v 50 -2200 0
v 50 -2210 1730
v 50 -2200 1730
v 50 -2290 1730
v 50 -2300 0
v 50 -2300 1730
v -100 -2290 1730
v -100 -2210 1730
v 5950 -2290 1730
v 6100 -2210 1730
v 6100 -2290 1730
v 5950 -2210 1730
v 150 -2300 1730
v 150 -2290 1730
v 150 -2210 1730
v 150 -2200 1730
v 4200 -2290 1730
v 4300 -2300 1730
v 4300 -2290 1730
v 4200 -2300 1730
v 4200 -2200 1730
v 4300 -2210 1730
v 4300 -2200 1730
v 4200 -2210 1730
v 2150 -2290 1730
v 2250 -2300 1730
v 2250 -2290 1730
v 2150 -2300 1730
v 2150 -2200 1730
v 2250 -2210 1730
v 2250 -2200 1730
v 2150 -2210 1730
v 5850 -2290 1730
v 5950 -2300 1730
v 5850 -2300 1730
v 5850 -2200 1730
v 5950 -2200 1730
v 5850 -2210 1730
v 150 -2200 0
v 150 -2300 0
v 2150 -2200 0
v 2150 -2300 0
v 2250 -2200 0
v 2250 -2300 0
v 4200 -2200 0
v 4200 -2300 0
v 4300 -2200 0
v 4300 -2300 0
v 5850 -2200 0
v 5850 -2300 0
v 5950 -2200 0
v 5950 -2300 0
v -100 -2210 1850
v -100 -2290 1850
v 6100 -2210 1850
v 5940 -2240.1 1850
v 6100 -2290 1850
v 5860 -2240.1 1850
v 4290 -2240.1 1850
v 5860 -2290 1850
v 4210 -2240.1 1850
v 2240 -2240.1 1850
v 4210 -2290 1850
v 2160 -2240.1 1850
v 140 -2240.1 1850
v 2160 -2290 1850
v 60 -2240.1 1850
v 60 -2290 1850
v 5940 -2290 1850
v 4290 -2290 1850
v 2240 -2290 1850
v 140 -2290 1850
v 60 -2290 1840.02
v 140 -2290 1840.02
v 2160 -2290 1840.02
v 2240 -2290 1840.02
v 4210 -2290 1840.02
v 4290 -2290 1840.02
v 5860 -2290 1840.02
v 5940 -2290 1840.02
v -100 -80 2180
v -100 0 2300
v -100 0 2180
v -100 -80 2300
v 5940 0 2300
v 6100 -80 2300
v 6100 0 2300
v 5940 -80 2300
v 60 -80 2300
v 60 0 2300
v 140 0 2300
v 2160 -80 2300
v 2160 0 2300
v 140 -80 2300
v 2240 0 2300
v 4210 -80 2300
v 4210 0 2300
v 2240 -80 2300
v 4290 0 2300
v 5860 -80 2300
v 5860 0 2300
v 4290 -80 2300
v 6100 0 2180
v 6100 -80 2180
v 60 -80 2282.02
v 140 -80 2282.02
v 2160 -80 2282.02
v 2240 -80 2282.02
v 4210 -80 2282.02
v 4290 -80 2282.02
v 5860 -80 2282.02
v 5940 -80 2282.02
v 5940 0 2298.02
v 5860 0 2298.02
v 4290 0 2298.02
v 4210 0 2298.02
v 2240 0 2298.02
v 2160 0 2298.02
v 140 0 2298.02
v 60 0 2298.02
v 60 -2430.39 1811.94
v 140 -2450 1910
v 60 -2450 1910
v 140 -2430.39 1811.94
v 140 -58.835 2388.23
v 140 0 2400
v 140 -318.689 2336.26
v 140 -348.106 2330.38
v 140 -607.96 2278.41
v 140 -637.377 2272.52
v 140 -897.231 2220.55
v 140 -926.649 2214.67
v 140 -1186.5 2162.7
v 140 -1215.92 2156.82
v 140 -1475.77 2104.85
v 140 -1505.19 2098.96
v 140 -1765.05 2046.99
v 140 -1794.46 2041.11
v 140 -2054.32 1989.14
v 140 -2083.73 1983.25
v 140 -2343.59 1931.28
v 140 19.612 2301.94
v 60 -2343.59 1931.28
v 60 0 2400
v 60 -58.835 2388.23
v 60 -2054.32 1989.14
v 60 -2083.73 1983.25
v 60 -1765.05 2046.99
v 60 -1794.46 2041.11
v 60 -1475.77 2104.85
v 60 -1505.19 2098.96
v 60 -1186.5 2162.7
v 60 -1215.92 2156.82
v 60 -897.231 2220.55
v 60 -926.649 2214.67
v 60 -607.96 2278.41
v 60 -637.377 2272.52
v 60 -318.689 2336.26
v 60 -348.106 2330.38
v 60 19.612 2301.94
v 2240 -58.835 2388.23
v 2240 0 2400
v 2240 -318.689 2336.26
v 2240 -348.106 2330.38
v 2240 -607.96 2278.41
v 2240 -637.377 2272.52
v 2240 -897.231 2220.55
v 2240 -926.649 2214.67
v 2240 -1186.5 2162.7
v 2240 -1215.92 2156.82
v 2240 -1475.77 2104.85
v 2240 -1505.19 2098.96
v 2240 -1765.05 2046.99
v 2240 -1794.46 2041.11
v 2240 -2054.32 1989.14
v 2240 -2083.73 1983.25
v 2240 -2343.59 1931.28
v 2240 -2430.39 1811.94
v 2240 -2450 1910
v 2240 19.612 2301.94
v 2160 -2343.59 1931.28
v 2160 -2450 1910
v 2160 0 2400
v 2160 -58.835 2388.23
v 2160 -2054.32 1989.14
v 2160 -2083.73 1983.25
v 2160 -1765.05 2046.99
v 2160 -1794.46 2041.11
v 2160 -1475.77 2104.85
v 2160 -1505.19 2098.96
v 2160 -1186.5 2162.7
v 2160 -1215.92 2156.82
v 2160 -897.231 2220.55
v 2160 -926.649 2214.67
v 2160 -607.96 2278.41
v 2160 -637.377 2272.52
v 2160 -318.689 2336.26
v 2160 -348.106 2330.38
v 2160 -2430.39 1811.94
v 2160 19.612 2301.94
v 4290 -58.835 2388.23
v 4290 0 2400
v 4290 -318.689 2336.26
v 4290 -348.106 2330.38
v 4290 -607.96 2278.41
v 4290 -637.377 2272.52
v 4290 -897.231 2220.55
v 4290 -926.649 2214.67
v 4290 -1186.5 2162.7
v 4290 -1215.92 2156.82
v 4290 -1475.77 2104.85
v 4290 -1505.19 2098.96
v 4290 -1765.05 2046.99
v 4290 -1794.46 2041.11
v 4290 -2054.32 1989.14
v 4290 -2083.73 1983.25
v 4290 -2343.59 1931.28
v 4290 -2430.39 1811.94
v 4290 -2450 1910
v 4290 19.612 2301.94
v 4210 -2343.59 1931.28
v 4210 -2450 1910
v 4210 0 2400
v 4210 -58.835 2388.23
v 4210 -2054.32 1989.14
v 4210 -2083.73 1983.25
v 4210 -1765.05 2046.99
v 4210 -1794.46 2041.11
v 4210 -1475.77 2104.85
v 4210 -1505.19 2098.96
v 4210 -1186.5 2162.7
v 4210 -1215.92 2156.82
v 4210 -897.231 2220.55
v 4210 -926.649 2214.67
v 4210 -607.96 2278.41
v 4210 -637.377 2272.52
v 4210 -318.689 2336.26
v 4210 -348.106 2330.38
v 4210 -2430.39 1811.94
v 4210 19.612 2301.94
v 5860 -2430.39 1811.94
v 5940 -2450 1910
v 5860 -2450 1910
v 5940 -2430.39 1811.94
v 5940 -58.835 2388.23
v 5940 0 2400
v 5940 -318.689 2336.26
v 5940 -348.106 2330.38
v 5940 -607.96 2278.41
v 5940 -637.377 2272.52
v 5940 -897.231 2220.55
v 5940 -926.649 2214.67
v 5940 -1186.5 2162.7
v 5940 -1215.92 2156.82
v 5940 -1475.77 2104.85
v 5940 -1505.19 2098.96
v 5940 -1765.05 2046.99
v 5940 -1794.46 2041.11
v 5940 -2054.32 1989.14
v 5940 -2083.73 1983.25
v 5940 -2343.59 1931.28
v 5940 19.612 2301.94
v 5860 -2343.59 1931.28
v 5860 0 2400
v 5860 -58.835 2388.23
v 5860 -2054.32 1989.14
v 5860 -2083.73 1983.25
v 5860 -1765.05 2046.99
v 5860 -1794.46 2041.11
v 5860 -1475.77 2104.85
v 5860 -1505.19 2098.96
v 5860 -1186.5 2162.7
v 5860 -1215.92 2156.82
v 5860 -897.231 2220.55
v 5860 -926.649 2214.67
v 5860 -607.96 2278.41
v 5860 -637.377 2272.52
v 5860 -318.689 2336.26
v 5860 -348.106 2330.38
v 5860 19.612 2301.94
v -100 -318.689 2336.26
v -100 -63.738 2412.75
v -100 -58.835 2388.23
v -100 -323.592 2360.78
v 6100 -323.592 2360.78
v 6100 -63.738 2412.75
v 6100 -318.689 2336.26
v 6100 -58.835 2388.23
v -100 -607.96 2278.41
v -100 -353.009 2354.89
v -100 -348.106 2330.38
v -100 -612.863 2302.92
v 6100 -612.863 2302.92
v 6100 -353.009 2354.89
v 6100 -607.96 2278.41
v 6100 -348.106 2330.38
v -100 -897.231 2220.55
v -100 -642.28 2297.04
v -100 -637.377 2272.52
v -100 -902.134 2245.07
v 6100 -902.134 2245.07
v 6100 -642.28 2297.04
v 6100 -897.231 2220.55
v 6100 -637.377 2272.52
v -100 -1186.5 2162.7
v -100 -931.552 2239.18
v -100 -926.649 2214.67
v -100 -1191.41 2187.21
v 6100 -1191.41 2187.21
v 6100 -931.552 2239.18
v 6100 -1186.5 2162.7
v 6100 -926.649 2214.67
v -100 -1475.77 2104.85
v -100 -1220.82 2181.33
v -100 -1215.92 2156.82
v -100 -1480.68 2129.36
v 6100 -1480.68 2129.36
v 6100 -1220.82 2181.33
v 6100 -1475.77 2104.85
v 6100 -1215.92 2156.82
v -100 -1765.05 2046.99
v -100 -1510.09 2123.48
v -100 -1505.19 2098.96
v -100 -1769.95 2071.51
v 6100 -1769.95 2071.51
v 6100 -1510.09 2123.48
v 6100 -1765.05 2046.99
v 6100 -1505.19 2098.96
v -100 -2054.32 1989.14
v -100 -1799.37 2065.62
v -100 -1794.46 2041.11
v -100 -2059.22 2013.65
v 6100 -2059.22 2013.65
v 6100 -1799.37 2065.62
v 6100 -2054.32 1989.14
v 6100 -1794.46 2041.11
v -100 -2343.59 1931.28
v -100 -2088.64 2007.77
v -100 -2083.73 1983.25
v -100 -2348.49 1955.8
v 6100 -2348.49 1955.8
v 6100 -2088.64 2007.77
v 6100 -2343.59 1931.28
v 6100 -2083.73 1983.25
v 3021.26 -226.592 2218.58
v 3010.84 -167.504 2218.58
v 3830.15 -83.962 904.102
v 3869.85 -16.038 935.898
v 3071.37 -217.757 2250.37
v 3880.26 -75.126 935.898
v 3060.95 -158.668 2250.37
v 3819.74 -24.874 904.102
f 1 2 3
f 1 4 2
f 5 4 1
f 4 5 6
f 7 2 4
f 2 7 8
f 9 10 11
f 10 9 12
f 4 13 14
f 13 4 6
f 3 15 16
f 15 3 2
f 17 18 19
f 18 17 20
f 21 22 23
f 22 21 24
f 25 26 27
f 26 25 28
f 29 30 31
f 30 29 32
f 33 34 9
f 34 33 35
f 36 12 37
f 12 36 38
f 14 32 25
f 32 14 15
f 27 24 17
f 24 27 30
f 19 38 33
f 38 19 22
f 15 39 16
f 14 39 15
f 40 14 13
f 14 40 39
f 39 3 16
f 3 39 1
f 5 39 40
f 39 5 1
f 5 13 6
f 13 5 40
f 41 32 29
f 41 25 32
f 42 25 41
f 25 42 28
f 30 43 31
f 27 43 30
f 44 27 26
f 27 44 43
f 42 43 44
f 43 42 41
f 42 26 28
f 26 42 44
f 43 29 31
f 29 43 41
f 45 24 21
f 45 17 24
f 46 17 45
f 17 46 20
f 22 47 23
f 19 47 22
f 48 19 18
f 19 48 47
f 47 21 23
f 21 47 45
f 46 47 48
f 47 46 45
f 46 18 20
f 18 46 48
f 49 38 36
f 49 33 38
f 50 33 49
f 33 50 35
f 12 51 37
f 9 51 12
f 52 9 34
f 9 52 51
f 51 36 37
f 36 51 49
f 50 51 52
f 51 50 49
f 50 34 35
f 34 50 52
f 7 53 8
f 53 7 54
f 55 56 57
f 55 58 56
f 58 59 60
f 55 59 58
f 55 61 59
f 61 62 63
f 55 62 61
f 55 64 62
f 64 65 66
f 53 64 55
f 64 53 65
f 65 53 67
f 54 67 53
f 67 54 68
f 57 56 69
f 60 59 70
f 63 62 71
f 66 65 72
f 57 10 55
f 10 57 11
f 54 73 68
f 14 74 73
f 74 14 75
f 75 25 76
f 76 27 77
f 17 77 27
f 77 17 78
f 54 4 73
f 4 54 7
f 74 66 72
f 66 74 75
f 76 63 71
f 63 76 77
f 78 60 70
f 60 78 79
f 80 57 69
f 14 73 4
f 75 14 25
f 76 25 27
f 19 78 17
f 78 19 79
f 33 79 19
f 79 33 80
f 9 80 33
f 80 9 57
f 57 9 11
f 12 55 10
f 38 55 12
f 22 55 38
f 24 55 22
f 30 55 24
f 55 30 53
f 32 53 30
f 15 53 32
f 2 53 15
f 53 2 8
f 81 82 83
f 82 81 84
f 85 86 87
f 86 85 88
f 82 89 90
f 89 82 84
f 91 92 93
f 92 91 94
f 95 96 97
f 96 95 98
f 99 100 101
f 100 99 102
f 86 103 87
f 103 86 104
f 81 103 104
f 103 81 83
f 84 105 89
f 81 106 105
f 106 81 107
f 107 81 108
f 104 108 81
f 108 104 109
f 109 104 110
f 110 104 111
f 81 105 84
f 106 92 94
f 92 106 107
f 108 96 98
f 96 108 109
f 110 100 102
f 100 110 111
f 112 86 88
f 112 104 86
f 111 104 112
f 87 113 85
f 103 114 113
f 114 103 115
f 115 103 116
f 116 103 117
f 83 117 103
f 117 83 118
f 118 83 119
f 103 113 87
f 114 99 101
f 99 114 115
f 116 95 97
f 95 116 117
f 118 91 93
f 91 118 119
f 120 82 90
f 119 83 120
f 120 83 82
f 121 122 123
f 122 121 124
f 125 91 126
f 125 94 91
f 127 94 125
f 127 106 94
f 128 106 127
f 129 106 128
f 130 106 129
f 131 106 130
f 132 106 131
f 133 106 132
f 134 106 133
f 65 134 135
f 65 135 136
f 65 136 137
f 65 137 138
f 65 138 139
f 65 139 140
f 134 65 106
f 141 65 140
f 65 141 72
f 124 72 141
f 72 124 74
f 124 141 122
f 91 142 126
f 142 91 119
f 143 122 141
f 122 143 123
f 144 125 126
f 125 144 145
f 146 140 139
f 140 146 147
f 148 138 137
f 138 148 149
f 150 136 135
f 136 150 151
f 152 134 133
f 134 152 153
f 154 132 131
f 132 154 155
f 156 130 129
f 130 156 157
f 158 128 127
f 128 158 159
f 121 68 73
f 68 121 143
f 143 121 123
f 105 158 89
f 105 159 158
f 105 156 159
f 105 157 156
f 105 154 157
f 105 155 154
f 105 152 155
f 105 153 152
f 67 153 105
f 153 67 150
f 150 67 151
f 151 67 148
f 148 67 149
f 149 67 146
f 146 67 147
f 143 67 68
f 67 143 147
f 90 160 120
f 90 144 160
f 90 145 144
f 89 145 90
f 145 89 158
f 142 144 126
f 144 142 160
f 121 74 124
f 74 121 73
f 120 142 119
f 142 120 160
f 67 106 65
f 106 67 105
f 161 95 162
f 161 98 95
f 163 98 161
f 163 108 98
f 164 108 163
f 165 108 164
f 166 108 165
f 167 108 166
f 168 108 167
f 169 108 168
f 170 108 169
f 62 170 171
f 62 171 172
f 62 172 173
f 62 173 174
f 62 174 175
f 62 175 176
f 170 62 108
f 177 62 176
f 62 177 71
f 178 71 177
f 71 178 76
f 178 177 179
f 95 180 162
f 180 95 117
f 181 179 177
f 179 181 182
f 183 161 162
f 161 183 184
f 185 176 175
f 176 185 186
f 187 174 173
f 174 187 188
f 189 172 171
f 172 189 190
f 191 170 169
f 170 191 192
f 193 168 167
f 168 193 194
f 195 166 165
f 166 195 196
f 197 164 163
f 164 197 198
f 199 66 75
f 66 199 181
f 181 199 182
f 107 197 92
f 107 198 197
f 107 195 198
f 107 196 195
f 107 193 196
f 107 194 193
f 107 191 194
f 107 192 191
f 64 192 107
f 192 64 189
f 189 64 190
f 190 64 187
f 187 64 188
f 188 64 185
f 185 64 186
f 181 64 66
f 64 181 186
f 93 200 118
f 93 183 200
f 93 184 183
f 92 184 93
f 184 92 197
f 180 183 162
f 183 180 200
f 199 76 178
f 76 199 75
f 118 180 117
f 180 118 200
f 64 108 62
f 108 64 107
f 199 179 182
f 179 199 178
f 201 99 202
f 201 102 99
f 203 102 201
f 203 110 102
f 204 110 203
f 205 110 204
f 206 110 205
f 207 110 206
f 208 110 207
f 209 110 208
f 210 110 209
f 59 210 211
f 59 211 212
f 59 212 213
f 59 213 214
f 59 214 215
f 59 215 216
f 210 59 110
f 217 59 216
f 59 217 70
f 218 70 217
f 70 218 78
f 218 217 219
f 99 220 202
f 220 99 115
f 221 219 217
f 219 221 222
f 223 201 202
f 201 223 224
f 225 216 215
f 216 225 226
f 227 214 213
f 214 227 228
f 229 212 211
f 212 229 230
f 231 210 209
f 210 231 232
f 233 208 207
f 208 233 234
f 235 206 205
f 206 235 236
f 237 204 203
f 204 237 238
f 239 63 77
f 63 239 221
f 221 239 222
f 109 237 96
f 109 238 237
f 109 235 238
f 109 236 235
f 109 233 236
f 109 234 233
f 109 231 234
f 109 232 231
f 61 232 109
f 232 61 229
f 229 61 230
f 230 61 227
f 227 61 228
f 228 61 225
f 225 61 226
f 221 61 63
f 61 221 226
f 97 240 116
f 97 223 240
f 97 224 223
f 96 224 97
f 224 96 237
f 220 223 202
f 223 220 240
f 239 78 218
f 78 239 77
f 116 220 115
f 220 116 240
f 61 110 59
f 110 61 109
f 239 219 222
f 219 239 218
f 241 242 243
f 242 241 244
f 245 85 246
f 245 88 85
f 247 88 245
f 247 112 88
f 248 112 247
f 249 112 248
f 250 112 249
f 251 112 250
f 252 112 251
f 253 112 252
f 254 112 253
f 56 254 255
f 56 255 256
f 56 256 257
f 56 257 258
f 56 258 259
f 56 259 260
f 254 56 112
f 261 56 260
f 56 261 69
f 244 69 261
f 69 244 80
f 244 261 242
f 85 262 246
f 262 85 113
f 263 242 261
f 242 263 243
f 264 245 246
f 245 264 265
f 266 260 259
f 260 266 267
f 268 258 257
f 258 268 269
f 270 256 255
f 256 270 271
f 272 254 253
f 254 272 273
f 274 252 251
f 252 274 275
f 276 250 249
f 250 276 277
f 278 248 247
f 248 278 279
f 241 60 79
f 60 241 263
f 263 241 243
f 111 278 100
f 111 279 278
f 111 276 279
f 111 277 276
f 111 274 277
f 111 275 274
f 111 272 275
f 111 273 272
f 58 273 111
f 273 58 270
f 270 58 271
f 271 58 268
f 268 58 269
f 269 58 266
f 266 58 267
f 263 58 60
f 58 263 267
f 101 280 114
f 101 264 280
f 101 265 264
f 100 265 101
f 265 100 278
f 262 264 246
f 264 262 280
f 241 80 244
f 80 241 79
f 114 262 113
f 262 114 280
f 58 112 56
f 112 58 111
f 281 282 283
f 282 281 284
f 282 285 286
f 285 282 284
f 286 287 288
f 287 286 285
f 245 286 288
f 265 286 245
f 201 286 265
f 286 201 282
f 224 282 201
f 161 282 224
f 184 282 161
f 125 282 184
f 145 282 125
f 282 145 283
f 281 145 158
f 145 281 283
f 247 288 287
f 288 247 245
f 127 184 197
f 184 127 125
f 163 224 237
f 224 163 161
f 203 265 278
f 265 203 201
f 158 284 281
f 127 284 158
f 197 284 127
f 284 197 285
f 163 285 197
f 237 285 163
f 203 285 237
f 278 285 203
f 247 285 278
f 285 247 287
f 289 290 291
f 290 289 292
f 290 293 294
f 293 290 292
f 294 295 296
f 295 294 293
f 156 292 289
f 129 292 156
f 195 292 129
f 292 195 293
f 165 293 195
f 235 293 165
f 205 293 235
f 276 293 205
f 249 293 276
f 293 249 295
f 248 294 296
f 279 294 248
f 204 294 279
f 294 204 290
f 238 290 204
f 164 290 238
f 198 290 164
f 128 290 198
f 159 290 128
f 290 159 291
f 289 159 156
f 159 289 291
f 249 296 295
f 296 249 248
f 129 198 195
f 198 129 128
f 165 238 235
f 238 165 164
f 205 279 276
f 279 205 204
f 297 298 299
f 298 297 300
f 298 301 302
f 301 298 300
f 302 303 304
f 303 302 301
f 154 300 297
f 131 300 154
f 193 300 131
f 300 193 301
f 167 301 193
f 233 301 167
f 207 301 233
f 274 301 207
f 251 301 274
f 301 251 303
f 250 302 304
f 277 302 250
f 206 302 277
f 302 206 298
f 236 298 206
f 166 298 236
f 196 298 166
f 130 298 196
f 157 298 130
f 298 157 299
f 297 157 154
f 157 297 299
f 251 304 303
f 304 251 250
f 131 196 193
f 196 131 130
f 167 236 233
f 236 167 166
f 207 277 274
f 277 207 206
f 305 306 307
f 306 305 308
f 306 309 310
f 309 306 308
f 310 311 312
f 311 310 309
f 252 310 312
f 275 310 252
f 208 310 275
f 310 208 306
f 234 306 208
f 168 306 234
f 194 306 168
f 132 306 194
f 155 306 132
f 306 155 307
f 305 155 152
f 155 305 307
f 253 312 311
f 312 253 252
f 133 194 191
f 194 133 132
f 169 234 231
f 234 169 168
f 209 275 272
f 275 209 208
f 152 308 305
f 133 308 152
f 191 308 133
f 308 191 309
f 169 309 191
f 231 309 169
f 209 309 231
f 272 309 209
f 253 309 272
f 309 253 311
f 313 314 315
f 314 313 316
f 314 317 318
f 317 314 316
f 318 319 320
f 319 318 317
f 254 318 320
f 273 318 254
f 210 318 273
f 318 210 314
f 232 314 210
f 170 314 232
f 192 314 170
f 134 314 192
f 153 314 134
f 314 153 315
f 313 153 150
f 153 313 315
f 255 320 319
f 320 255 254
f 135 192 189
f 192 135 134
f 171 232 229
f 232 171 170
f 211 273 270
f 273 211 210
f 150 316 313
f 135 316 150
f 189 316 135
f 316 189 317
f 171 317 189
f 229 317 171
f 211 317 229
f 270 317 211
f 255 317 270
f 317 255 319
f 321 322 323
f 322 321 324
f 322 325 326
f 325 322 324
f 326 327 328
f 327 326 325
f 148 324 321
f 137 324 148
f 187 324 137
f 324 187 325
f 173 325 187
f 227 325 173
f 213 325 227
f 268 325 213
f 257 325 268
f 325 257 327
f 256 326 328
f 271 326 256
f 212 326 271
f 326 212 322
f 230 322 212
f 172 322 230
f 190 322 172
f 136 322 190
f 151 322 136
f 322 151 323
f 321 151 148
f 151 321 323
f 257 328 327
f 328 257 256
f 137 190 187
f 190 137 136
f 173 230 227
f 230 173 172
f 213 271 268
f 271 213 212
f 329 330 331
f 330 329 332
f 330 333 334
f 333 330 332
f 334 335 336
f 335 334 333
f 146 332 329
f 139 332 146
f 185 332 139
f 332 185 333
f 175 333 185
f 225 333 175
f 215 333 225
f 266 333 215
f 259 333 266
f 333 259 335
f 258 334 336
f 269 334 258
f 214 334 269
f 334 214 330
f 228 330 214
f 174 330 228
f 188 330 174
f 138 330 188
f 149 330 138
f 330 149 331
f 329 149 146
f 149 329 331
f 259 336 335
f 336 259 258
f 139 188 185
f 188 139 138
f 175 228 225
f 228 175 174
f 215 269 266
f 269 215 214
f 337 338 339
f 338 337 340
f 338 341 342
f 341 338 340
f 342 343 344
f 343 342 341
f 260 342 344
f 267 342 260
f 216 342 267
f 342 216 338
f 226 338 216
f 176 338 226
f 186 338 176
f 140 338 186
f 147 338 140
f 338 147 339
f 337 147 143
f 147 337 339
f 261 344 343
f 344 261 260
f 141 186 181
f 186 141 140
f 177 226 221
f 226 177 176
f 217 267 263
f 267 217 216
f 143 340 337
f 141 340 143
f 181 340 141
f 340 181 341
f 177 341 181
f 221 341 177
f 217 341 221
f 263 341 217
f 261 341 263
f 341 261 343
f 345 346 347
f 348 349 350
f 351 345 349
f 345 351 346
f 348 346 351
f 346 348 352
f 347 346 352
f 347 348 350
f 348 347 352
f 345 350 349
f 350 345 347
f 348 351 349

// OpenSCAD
// file: tea_shop_pergola_parameters.scad
// =============================================================================
// Tea Shop — GROUP 3: PERGOLA PARAMETERS
// -----------------------------------------------------------------------------
// All units: mm (1000 mm = 1.0 m), real-life scale.
// Shared global coordinate system (identical to Groups 1 & 2):
//   +X -> left -> right  (0 = left outer wall face, BUILD_W = right outer wall)
//   +Y -> front -> back  (0 = front eave wall face, BUILD_D = back wall)
//   +Z -> up             (0 = ground / plinth top datum)
//   Porch canopy extends in negative Y (forward, from Y = 0 to Y ≈ -2450 mm).
// =============================================================================

// --- SHARED GLOBAL VARIABLES (from Groups 1 & 2 — identical values) ----------
WALL_T  = 250;   // wall panel thickness                      (0.25 m)
BUILD_W = 6000;  // building width along X                    (6.00 m)
BUILD_D = 4000;  // building depth along Y                    (4.00 m)
BACK_H  = 3200;  // wall height at BACK (tall lean-to side)   (3.20 m)
FRONT_H = 2400;  // wall height at FRONT eave (short side)    (2.40 m)

// Group 1 alias names
wall_thickness    = WALL_T;
building_width    = BUILD_W;
building_depth    = BUILD_D;
back_height       = BACK_H;
front_eave_height = FRONT_H;

// Group 1 front opening & plinth references:
sill_height       = 900;   // knee-wall sill datum where brace foot rests (0.90 m)
base_front_margin = 3000;  // total front porch slab depth               (3.00 m)

// Group 2 roof slope derivation (pergola slope follows this exact angle):
ROOF_RISE  = BACK_H - FRONT_H;  // 800 mm
ROOF_RUN   = BUILD_D;            // 4000 mm
ROOF_ANGLE = atan(ROOF_RISE / ROOF_RUN); // ~11.3099°


// =============================================================================
// GROUP 3 PARAMETERS — Pergola Structure & Dimensions
// =============================================================================

// --- Post Cross-Section & Layout ---------------------------------------------
// REFERENCE NOTE: Posts are square timber (~100x100 mm), confirmed from
// wireframe (countryside-tea-shop-3d-model-9cc7378ff7.webp).
POST_SIZE = 100;  // square timber post dimension (100 mm × 100 mm) (0.10 m)

// Y coordinate of the front posts line:
// Placed at Y = -2250 mm (~75% forward across the 3.0 m porch slab),
// leaving ~750 mm open patio in front of posts as shown in reference renders.
POST_Y    = -2250;

// Array of 4 post positions [X, Y]:
// Derived from front elevation proportions:
//   - Post 1 (X=100)  : near left edge of pergola / bench area
//   - Post 2 (X=2200) : intermediate post subdividing wide 3.4m service window span
//   - Post 3 (X=4250) : positioned at mid-pier directly supporting signboard
//   - Post 4 (X=5900) : near right corner of pergola
PERGOLA_POST_POSITIONS = [
    [100,  POST_Y],  // Post 1: Front-Left
    [2200, POST_Y],  // Post 2: Front-Mid-Left
    [4250, POST_Y],  // Post 3: Front-Mid-Right (under "TEA SHOP" sign)
    [5900, POST_Y]   // Post 4: Front-Right
];

// --- Beam Dimensions ---------------------------------------------------------
MAIN_BEAM_WIDTH  = 80;   // thickness of header & ledger beams along Y (0.08 m)
MAIN_BEAM_HEIGHT = 120;  // vertical depth of header & ledger beams    (0.12 m)

// --- Cross Beams / Rafters ---------------------------------------------------
CROSS_BEAM_WIDTH  = 80;   // rafter timber thickness along X            (0.08 m)
CROSS_BEAM_HEIGHT = 100;  // rafter timber depth normal to slope        (0.10 m)

// Rafter X positions aligning directly over the 4 posts:
CROSS_BEAM_X_POSITIONS = [100, 2200, 4250, 5900];

// Sloped length of rafter from front wall (Y=0) to 200 mm past the posts:
CROSS_BEAM_SLOPE_LEN = (abs(POST_Y) + 200) / cos(ROOF_ANGLE);

// --- Pergola Slope Datum & Post Height Derivation ----------------------------
// The pergola roof slopes DOWNWARDS from the front wall eave (Y=0, Z=FRONT_H)
// toward the front posts (Y=POST_Y).
// Under the slope, the rafter top is at: FRONT_H - abs(POST_Y) * tan(ROOF_ANGLE).
// Below the rafters is the header beam (MAIN_BEAM_HEIGHT).
// Post tops touch the underside of the header beam:
PERGOLA_EAVE_Z = FRONT_H;
POST_HEIGHT    = PERGOLA_EAVE_Z - abs(POST_Y) * tan(ROOF_ANGLE) - CROSS_BEAM_HEIGHT - MAIN_BEAM_HEIGHT;

// --- Diagonal Prop Brace -----------------------------------------------------
// Single prop strut visible in window wireframe (8ffafd36e4.webp), anchoring
// near the counter sill and rising diagonally to the overhead rafter.
BRACE_WIDTH     = 60;   // diagonal brace width                       (0.06 m)
BRACE_THICKNESS = 60;   // diagonal brace thickness                   (0.06 m)
BRACE_LENGTH    = 1550; // length along diagonal strut axis           (1.55 m)
BRACE_ANGLE     = 32;   // angle of brace from vertical in degrees

// --- Slatted Roof Canopy (Planks) --------------------------------------------
// 8 flat timber planks running along X (spanning full width), arrayed along
// the slope from the front wall eave to cantilever slightly past the front posts.
SLAT_WIDTH        = 265;  // width of each individual wooden plank      (0.265 m)
SLAT_THICKNESS    = 25;   // thickness of timber plank                  (0.025 m)
SLAT_GAP          = 30;   // air gap between consecutive slats          (0.030 m)
SLAT_COUNT        = 8;    // count matching 8 planks visible in wireframe
SLAT_LENGTH       = 6200; // full span along X (covers 6000 mm + 100 mm side margins)
SLAT_START_OFFSET = 60;   // distance along slope from wall face to first slat (mm)
// file: tea_shop_pergola_modules.scad
// =============================================================================
// Tea Shop — GROUP 3: PERGOLA MODULE LIBRARY
// -----------------------------------------------------------------------------
// Defines all pergola part modules. Creates NO geometry on its own when
// included, allowing individual part_*.scad export files and the assembly
// preview file to include it cleanly.
//
// SHARED GLOBAL COORDINATE SYSTEM (identical to Groups 1 & 2):
//   +X -> left -> right  (0 = left outer wall face, BUILD_W = right outer wall)
//   +Y -> front -> back  (0 = front eave wall face, BUILD_D = back wall)
//   +Z -> up             (0 = ground / plinth top datum)
//   Porch canopy extends in negative Y (forward, from Y = 0 to Y ≈ -2450 mm).
//
// SLOPE CORRECTION:
//   Because the porch is in the negative Y direction (-Y), applying a POSITIVE
//   rotation `rotate([ROOF_ANGLE, 0, 0])` causes the coordinate `[0, -y, 0]`
//   to rotate DOWNWARD into negative Z: `Z = -y * sin(ROOF_ANGLE)`.
//   This ensures the pergola rafters and slats slope DOWNWARDS toward the front
//   posts, resting flush and continuous with the building's roof line.
//
// TODO: The hanging "TEA SHOP" sign and its mounting bracket (a later group)
//       will attach to the main header beam / roof slats near Post 3 (X=4250).
// TODO: The customer bench, stools, and water dispenser stand (later groups)
//       sit on the base slab beneath this pergola structure at Z=0.
// =============================================================================

include <tea_shop_pergola_parameters.scad>;


// =============================================================================
// MODULE 1: pergola_post()
// -----------------------------------------------------------------------------
// A single vertical square timber post modeled at the local origin:
//   Centred in X and Y ([-POST_SIZE/2 .. +POST_SIZE/2]), rising from Z=0
//   to Z=POST_HEIGHT (touching the underside of the front header beam).
// Instanced 4 times via translate() in assemble() — single reusable module.
// =============================================================================
module pergola_post() {
    translate([-POST_SIZE/2, -POST_SIZE/2, 0])
        cube([POST_SIZE, POST_SIZE, POST_HEIGHT]);
}


// =============================================================================
// MODULE 2: pergola_main_beam()
// -----------------------------------------------------------------------------
// The horizontal primary beam system:
//   1. Front header beam: spans across all 4 post tops at Y = POST_Y,
//      distributing load and directly supporting the sloped rafters.
//   2. Rear ledger beam: runs along the front wall eave (Y=0), supporting
//      the upper ends of the rafters.
// =============================================================================
module pergola_main_beam() {
    // 1. Front header beam resting directly on top of the front posts
    translate([-100, POST_Y - MAIN_BEAM_WIDTH/2, POST_HEIGHT])
        cube([BUILD_W + 200, MAIN_BEAM_WIDTH, MAIN_BEAM_HEIGHT]);

    // 2. Rear wall ledger beam anchored to the front wall below the eave
    translate([-100, -MAIN_BEAM_WIDTH, PERGOLA_EAVE_Z - MAIN_BEAM_HEIGHT - CROSS_BEAM_HEIGHT])
        cube([BUILD_W + 200, MAIN_BEAM_WIDTH, MAIN_BEAM_HEIGHT]);
}


// =============================================================================
// MODULE 3: pergola_diagonal_brace()
// -----------------------------------------------------------------------------
// A single diagonal timber brace modeled at local origin. Oriented at BRACE_ANGLE
// from vertical. Instanced at the service counter sill to support the overhead
// rafter beam, exactly as shown in the reference wireframe pass.
// =============================================================================
module pergola_diagonal_brace() {
    rotate([0, -BRACE_ANGLE, 10])
        translate([-BRACE_WIDTH/2, -BRACE_THICKNESS/2, 0])
            cube([BRACE_WIDTH, BRACE_THICKNESS, BRACE_LENGTH]);
}


// =============================================================================
// MODULE 4: pergola_cross_beam()
// -----------------------------------------------------------------------------
// A single sloped rafter running perpendicular to the building (in Y direction).
// Modeled at local origin (X=0) and sloped DOWNWARD at ROOF_ANGLE:
//   - Starts at the front wall ledger beam (Y=0)
//   - Slopes down to bear across the front header beam at POST_Y
//   - Projects 200 mm past the posts as an exposed rafter tail
// =============================================================================
module pergola_cross_beam() {
    translate([0, 0, PERGOLA_EAVE_Z])
        rotate([ROOF_ANGLE, 0, 0])
            translate([-CROSS_BEAM_WIDTH/2, -CROSS_BEAM_SLOPE_LEN, -CROSS_BEAM_HEIGHT])
                cube([CROSS_BEAM_WIDTH, CROSS_BEAM_SLOPE_LEN, CROSS_BEAM_HEIGHT]);
}


// =============================================================================
// MODULE 5: pergola_slat()
// -----------------------------------------------------------------------------
// A single flat timber canopy plank running along X (spanning the full width).
// Instanced and arrayed in assemble() via a for loop down the sloped plane,
// resting directly on top of the rafters.
// =============================================================================
module pergola_slat() {
    translate([-100, -SLAT_WIDTH, 0])
        cube([SLAT_LENGTH, SLAT_WIDTH, SLAT_THICKNESS]);
}


// =============================================================================
// ASSEMBLE MODULE — Visual verification preview (not for export)
// -----------------------------------------------------------------------------
// Press F5 in OpenSCAD to view all Group 3 pergola components together in color.
// For individual STL export, use the dedicated part_*.scad files.
// =============================================================================
module assemble() {
    // 1. Posts (4 instances positioned in shared global coordinates)
    color("SaddleBrown") {
        for (pos = PERGOLA_POST_POSITIONS) {
            translate([pos[0], pos[1], 0])
                pergola_post();
        }
    }

    // 2. Main horizontal beams (front header + rear ledger)
    color("Peru")
        pergola_main_beam();

    // 3. Cross beams / rafters (4 instances positioned over each post line)
    color("BurlyWood") {
        for (x = CROSS_BEAM_X_POSITIONS) {
            translate([x, 0, 0])
                pergola_cross_beam();
        }
    }

    // 4. Slatted canopy roof (8 flat planks arrayed along the slope)
    color("DarkGoldenrod") {
        for (i = [0 : SLAT_COUNT - 1]) {
            dist = SLAT_START_OFFSET + i * (SLAT_WIDTH + SLAT_GAP);
            translate([0, 0, PERGOLA_EAVE_Z])
                rotate([ROOF_ANGLE, 0, 0])
                    translate([0, -dist, 0])
                        pergola_slat();
        }
    }

    // 5. Diagonal prop brace (anchored at the service window counter sill)
    color("DarkSlateGray") {
        translate([3850, -50, sill_height + 20])
            pergola_diagonal_brace();
    }
}

// Default preview invocation:
assemble();
// main file
// =============================================================================
// part_pergola_cross_beams.scad — EXPORT ALL 4 CROSS BEAMS / RAFTERS fused.
// Press F6 (render), then export as STL.
// =============================================================================

include <tea_shop_pergola_modules.scad>;

union() {
    for (x = CROSS_BEAM_X_POSITIONS) {
        translate([x, 0, 0])
            pergola_cross_beam();
    }
}
